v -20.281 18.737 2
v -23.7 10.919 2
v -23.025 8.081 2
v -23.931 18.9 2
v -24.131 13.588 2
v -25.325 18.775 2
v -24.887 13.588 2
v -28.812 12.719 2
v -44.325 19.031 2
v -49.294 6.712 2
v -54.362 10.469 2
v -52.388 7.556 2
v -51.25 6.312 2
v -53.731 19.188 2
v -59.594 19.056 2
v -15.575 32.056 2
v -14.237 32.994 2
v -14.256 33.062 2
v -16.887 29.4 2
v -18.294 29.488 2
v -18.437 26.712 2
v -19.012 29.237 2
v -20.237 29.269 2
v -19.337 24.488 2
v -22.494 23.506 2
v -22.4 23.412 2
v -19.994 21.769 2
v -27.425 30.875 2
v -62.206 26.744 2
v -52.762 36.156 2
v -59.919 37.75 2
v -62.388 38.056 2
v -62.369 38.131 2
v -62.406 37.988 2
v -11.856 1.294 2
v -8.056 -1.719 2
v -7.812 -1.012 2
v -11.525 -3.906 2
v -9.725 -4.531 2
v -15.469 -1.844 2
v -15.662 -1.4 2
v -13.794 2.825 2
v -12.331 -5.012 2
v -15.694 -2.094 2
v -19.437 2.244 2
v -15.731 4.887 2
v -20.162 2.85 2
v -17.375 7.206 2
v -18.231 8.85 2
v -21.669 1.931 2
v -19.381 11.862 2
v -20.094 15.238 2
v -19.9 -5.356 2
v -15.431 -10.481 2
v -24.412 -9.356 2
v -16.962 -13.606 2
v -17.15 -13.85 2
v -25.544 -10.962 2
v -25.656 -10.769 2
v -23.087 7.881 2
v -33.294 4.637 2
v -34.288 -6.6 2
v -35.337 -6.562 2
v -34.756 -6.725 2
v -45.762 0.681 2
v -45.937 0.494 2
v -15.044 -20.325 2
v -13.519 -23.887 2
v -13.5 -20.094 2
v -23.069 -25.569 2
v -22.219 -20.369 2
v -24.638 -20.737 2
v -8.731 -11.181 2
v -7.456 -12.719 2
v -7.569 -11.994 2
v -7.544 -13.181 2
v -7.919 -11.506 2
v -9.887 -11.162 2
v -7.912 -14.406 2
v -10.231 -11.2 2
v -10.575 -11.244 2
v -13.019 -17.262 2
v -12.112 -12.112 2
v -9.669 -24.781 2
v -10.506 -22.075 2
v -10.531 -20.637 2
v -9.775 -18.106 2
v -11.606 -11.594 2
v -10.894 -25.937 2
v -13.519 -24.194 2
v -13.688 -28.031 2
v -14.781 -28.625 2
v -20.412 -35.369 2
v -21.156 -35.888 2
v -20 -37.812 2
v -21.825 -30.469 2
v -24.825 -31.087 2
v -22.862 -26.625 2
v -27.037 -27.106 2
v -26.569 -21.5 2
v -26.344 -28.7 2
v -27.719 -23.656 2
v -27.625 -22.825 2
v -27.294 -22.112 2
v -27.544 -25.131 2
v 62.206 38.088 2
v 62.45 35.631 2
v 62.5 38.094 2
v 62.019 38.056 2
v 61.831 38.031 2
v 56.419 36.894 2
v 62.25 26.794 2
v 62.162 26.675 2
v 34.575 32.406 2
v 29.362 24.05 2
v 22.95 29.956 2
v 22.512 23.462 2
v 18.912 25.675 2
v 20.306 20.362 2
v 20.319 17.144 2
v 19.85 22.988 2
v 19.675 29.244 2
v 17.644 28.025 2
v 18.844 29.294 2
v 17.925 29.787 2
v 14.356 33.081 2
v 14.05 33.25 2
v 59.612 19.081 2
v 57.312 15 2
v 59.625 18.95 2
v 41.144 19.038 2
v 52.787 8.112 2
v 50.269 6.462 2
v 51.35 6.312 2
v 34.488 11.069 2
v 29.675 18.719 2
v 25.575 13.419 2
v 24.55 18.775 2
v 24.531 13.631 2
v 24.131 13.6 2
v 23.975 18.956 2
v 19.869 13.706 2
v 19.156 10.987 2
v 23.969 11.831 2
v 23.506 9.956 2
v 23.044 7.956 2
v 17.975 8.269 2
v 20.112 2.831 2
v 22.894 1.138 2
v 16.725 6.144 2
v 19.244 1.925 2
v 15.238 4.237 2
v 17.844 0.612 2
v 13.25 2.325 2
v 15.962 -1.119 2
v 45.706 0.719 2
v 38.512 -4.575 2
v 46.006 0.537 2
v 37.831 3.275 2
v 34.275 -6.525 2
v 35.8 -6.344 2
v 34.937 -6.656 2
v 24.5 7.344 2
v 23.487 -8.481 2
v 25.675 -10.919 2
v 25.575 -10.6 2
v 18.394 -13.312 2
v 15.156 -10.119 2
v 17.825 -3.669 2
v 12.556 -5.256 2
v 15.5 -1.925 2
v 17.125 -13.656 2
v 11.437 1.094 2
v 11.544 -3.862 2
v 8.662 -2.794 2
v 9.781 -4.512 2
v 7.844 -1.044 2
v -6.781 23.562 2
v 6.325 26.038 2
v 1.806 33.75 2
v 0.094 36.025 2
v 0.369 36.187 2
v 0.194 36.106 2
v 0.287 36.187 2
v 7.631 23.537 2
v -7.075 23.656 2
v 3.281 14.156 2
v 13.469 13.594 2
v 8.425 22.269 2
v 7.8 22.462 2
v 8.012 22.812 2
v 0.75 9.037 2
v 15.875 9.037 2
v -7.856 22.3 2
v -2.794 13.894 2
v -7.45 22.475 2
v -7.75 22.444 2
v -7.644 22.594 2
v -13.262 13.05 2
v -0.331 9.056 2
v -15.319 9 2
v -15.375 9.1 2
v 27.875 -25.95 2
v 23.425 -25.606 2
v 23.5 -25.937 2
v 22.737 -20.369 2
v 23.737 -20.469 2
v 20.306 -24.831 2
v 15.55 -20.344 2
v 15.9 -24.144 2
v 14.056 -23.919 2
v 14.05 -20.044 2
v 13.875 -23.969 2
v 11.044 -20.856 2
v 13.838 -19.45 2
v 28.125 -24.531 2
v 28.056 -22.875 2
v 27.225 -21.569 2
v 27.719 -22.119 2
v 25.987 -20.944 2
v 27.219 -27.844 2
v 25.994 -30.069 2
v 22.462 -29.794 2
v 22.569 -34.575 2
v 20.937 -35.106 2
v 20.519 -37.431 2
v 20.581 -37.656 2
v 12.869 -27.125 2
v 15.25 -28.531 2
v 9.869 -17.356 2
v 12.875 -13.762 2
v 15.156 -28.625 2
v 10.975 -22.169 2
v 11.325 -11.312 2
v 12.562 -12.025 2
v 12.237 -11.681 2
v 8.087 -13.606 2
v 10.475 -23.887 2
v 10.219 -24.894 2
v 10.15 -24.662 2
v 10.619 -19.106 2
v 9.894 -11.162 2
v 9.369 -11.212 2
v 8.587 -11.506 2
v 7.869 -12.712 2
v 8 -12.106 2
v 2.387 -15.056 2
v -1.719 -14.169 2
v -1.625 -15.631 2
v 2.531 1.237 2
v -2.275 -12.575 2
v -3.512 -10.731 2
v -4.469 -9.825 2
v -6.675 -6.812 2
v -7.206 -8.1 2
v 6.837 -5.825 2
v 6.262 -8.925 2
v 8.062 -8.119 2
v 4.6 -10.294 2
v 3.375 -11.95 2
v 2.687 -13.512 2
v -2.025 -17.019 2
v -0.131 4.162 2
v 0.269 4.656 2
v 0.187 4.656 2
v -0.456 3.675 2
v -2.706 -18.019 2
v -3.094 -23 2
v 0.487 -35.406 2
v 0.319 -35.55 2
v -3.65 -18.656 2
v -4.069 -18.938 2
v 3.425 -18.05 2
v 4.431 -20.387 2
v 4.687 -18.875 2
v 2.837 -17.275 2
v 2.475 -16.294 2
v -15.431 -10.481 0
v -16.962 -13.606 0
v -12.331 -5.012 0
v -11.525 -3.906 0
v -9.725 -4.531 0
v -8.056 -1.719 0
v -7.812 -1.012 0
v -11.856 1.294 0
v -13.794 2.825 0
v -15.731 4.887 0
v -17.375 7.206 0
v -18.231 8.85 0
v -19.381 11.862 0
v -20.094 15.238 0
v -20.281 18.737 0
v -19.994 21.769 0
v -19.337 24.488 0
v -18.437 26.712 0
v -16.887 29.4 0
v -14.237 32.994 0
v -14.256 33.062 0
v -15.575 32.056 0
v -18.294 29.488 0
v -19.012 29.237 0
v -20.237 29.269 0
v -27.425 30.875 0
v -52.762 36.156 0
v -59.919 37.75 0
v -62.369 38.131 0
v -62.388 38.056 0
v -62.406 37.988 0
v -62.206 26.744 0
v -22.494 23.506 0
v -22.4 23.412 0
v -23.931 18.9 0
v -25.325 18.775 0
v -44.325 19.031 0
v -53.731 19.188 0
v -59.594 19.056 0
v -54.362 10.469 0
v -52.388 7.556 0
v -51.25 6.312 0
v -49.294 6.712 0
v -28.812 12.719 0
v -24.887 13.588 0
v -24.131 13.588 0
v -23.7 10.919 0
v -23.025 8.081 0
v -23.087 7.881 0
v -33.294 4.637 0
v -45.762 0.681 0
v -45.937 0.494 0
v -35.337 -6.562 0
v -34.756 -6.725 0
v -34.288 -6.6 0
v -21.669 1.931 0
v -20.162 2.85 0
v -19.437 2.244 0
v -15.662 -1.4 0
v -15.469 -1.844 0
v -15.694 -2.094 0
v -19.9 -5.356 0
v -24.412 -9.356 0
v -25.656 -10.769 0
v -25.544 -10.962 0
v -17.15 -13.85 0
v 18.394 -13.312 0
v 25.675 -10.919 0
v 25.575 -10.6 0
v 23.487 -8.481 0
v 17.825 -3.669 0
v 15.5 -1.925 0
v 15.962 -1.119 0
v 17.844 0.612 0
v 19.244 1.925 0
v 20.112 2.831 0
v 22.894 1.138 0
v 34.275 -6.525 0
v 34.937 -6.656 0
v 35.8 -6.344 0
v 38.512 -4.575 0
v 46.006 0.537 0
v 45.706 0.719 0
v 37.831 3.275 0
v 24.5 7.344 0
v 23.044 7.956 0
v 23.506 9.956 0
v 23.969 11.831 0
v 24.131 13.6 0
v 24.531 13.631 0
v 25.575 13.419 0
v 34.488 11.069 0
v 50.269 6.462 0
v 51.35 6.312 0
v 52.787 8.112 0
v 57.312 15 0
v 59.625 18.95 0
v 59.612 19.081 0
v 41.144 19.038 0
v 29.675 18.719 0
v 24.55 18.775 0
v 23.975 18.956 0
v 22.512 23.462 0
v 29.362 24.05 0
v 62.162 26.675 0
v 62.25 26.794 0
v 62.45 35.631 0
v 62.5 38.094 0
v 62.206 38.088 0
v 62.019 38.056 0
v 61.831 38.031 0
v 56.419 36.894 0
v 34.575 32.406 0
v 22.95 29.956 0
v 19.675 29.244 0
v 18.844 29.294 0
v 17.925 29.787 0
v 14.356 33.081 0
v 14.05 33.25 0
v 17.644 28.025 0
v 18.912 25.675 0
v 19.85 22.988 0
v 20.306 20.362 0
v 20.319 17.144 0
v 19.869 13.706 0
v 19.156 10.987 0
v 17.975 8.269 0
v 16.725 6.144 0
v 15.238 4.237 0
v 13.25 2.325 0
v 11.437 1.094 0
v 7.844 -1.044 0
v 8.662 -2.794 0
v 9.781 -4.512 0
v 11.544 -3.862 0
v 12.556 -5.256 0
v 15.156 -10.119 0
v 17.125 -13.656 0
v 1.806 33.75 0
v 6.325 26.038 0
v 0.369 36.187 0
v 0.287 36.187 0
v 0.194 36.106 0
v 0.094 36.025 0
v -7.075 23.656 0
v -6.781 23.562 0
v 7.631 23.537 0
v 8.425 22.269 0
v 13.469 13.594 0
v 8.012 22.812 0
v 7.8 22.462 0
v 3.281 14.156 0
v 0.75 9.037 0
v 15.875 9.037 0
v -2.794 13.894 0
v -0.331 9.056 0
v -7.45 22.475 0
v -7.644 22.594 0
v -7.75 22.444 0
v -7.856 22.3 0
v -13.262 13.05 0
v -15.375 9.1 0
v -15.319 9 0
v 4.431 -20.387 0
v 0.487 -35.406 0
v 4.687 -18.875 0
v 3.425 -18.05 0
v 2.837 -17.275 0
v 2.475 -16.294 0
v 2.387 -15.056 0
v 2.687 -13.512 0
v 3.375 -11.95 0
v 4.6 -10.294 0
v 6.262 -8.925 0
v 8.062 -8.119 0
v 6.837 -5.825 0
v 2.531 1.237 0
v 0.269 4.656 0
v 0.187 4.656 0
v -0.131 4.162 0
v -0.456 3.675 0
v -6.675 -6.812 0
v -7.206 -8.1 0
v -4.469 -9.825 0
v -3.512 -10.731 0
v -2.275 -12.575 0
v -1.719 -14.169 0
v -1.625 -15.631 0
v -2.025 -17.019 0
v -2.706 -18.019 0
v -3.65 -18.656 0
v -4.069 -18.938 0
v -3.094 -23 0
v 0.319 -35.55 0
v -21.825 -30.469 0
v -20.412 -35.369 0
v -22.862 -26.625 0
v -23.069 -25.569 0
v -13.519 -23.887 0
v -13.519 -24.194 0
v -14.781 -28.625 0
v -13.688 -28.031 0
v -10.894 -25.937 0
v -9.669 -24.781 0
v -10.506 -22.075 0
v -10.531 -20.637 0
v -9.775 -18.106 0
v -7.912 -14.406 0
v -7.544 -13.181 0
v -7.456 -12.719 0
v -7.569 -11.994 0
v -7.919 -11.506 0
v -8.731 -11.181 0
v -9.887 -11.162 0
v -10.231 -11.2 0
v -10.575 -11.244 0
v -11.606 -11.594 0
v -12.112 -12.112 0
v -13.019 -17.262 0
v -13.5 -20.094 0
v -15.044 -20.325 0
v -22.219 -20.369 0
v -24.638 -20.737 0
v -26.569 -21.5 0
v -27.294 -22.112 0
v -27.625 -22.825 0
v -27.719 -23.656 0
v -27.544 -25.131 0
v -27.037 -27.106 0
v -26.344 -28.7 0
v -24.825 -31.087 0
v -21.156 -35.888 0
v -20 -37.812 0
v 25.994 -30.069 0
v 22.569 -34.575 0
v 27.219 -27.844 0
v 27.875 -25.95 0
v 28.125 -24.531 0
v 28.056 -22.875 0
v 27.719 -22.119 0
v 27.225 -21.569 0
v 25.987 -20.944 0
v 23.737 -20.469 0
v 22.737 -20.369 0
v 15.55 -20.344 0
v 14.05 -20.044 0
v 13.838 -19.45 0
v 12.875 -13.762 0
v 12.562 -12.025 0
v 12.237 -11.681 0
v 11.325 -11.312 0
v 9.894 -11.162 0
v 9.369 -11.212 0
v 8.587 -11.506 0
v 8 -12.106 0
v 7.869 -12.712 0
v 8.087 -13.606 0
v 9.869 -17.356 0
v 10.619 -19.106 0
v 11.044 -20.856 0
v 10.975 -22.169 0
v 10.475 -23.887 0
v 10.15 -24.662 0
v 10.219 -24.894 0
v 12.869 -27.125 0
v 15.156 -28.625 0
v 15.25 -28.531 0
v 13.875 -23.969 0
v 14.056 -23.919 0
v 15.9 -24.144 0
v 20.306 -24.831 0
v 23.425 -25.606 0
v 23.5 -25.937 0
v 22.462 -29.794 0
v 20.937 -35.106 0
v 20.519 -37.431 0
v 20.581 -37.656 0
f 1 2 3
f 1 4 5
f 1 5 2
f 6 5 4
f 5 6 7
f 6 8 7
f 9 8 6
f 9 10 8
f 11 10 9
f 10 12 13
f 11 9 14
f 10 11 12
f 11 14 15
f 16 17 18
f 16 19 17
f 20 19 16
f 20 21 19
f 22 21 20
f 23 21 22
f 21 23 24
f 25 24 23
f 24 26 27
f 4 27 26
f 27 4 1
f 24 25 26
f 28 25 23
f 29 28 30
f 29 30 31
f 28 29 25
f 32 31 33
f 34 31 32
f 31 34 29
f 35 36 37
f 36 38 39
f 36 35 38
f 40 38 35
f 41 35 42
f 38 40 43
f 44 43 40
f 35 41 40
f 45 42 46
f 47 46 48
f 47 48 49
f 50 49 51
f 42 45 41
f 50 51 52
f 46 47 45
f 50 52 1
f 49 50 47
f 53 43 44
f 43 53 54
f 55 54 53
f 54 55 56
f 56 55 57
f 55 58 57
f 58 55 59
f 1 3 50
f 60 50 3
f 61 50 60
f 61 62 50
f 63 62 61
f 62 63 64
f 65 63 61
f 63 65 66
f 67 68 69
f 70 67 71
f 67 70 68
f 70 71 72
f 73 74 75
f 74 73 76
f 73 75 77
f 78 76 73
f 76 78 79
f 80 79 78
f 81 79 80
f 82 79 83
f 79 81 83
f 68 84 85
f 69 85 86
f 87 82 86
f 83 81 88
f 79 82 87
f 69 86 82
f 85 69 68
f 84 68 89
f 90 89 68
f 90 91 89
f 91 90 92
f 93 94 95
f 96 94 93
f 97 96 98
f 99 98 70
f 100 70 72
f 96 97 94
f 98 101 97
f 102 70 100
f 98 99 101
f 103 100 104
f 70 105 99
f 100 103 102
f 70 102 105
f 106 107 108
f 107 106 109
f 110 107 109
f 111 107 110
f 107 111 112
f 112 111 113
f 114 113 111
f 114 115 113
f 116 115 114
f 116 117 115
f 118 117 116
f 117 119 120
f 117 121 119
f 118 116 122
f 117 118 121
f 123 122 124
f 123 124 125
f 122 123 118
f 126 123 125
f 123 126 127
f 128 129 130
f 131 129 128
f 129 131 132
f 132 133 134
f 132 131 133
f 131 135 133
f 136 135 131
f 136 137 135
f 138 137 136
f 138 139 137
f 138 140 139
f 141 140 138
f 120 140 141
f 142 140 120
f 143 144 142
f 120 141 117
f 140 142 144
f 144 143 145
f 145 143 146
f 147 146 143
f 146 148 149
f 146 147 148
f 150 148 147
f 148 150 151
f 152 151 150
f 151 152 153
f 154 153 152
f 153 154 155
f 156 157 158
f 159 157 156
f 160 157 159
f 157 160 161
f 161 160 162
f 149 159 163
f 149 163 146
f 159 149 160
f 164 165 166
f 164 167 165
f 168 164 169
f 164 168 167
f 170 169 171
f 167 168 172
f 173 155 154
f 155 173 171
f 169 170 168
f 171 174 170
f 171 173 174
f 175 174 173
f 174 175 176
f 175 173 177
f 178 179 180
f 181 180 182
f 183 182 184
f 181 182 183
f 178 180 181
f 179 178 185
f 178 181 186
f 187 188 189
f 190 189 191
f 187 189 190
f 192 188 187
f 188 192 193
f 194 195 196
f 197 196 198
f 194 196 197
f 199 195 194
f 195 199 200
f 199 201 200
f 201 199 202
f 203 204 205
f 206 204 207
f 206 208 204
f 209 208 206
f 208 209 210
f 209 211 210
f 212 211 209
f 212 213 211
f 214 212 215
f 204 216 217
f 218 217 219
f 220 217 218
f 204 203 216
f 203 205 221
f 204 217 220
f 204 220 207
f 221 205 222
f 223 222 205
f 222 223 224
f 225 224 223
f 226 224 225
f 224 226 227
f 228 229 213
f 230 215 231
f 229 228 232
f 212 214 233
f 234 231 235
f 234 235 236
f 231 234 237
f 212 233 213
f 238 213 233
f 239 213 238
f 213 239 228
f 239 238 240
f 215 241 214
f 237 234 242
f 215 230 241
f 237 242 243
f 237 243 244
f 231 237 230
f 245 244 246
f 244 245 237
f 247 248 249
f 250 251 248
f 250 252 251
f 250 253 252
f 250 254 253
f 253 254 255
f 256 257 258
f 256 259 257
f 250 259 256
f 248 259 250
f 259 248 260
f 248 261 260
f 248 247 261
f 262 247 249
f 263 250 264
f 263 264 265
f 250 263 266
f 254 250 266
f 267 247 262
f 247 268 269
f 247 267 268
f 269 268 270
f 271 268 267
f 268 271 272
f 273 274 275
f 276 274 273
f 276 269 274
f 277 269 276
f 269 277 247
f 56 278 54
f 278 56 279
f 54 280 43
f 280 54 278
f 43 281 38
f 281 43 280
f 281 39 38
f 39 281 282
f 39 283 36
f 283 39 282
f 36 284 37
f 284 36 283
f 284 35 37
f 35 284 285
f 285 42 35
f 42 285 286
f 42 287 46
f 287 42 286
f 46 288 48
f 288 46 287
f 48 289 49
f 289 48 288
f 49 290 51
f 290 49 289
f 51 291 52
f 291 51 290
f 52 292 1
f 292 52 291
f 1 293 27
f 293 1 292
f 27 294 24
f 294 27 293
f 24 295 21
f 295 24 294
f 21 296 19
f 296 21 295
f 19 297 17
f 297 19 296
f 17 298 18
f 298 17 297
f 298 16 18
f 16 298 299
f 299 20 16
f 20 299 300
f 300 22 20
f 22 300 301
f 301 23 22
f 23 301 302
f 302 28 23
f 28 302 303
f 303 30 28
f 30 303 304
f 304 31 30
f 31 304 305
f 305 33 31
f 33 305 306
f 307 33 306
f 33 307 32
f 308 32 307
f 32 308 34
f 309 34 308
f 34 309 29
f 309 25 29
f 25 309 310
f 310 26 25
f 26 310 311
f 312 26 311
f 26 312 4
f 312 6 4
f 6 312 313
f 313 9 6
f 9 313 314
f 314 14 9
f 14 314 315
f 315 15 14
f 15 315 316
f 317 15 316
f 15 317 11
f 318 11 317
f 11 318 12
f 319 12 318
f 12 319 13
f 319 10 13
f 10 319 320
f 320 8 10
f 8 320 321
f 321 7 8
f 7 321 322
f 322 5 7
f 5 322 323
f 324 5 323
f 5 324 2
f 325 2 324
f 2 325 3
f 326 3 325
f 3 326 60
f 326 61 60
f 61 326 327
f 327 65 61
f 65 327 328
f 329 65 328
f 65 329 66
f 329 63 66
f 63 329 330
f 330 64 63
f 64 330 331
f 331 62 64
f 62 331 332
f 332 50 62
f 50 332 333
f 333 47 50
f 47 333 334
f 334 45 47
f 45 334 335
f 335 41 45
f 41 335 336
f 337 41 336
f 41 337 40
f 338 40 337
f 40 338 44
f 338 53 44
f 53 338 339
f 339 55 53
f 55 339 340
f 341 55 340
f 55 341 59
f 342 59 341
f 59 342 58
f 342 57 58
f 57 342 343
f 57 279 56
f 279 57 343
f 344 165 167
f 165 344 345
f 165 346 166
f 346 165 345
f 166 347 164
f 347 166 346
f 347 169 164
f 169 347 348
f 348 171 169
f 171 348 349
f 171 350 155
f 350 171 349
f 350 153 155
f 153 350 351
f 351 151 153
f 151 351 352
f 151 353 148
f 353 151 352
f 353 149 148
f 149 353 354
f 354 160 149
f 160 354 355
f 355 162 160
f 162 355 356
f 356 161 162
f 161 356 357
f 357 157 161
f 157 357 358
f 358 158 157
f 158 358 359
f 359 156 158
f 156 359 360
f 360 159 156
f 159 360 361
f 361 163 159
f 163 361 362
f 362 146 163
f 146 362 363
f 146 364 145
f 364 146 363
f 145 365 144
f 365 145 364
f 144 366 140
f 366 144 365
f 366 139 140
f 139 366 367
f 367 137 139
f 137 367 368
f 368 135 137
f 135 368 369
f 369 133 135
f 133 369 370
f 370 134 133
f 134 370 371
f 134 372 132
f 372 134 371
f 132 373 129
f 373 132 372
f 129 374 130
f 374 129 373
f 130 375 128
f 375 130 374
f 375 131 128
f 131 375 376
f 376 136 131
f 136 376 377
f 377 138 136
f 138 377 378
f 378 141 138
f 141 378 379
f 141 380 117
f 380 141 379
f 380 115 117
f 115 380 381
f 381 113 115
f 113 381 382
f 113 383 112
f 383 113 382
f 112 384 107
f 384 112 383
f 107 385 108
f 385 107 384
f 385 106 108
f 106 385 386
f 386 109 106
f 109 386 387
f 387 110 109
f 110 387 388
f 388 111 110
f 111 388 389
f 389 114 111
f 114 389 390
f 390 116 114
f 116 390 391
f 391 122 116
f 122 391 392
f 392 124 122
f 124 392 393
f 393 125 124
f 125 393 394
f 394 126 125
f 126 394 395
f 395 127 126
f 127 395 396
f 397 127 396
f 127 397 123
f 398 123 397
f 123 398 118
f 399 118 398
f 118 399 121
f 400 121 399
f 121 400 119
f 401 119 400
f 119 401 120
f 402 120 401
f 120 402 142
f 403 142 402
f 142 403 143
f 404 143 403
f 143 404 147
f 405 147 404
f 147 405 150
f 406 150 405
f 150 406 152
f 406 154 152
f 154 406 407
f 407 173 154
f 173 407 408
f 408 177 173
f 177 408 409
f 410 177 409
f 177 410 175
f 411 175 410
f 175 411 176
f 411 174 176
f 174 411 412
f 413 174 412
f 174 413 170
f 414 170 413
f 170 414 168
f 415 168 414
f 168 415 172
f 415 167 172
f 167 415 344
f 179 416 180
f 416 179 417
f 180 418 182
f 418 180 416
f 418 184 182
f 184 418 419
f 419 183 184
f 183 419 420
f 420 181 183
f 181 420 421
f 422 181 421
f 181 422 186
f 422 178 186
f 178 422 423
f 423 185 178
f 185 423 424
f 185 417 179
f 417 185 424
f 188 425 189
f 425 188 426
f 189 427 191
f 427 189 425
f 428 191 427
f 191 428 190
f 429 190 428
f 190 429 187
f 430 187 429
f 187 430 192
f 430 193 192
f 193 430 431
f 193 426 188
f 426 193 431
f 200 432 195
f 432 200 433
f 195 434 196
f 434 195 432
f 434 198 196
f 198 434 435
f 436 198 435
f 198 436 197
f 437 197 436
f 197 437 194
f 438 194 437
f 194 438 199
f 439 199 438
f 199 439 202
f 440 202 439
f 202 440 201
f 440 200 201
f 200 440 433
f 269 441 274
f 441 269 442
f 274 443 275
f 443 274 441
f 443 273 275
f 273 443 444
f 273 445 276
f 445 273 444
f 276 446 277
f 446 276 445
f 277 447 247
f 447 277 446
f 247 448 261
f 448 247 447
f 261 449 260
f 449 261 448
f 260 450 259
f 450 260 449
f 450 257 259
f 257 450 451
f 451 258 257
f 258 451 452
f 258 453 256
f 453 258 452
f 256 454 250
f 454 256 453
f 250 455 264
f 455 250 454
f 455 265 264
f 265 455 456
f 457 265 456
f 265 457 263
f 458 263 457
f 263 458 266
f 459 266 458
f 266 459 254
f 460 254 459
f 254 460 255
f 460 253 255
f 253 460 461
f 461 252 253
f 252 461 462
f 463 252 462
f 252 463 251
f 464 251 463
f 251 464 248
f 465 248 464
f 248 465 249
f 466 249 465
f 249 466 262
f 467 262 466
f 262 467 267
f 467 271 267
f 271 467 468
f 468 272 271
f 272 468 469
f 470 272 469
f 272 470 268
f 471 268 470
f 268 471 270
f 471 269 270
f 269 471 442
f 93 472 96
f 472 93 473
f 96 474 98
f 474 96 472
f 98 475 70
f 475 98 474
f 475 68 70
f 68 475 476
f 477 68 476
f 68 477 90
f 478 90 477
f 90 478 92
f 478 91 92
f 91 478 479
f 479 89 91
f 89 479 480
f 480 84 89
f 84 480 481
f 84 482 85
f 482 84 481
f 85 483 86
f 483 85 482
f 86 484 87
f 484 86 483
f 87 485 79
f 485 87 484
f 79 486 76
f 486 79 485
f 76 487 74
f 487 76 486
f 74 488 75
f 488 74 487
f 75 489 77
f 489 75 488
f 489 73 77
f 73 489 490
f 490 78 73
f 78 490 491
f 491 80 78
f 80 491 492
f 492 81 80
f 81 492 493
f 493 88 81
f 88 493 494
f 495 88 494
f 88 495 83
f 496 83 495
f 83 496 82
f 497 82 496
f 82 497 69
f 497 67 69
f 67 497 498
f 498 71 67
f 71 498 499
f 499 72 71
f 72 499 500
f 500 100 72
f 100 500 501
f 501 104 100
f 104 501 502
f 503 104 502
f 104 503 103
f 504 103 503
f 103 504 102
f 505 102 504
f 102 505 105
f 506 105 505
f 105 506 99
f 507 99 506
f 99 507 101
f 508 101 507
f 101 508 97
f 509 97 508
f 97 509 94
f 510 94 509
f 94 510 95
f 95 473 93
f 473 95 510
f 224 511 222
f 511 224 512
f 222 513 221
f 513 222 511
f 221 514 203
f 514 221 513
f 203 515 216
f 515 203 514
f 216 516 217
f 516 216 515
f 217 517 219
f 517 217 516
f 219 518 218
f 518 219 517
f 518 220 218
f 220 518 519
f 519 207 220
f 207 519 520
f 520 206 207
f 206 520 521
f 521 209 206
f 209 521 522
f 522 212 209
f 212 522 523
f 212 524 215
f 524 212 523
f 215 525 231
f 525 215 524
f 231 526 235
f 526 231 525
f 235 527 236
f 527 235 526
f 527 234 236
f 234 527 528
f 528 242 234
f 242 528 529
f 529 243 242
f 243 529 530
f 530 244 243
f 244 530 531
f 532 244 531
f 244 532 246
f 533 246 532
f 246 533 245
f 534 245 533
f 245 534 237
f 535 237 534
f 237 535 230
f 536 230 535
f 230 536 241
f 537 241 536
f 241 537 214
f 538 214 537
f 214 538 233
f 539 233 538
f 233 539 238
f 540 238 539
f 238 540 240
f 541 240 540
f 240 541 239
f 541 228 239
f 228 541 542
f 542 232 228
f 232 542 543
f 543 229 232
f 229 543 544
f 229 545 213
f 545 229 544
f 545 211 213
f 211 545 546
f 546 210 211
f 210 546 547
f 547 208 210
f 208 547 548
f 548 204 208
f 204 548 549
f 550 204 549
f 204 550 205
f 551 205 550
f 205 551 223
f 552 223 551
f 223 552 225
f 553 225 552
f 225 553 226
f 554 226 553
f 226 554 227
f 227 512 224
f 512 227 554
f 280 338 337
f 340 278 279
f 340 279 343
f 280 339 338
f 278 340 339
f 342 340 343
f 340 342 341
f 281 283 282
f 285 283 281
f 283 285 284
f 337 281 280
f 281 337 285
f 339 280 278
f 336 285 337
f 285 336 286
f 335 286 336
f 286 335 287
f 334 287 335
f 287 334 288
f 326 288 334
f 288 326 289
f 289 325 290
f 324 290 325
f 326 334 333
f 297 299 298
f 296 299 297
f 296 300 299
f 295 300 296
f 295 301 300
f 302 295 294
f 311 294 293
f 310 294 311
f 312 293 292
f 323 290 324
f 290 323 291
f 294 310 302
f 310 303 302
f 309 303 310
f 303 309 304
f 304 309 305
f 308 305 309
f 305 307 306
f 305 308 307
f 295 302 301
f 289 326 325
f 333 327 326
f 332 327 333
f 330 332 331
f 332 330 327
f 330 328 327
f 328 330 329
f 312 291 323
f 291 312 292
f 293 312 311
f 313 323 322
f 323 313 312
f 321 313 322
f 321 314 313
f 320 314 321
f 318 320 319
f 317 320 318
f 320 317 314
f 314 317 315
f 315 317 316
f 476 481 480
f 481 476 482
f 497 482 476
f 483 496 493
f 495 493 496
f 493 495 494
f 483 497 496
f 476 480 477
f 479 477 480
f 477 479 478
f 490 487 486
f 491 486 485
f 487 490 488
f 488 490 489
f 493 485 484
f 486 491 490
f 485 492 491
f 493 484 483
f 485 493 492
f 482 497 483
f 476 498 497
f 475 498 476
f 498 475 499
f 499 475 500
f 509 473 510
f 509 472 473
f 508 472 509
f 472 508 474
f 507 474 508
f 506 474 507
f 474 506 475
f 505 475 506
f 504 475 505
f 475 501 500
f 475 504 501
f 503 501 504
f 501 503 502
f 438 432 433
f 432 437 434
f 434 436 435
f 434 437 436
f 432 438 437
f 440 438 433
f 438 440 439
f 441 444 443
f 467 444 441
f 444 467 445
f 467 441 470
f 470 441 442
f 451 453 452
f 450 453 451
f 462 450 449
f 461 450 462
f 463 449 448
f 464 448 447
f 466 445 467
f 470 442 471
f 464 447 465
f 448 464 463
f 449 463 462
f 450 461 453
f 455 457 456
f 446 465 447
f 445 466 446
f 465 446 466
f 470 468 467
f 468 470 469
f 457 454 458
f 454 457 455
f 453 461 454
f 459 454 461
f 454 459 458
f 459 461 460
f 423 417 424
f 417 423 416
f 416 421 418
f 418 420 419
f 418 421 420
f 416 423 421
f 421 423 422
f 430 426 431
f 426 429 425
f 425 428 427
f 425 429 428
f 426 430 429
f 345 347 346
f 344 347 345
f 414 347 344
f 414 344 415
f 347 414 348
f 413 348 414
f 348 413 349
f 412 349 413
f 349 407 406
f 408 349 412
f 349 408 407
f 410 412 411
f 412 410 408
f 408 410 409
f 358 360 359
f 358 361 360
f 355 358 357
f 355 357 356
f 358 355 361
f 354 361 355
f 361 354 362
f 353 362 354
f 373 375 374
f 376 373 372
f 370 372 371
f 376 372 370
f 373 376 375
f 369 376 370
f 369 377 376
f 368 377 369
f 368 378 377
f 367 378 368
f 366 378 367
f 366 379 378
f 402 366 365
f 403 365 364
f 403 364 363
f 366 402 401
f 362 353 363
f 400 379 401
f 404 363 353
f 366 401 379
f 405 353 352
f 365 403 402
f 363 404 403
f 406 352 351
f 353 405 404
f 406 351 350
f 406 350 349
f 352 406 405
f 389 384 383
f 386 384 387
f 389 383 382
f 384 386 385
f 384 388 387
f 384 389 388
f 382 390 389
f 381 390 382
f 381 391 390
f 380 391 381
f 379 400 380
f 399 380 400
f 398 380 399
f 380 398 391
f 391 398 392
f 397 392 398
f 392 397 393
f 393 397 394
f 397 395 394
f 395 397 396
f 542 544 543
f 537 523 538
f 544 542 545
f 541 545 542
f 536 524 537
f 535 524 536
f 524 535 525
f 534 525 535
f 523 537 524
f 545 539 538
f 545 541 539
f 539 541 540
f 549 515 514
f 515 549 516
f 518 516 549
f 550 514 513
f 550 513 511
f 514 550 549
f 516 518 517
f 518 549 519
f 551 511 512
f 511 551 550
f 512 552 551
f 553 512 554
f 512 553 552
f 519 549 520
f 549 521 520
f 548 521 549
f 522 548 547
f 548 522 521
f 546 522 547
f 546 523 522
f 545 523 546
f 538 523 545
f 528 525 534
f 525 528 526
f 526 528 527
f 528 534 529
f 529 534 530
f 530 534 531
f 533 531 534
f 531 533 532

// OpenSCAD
module e0ab2d44b9b2497b7de0b8276d8cbcb8_1()
{
 /* Generated by trace2scad version 20150415
    http://aggregate.org/MAKE/TRACE2SCAD/
    Optimized model has 279/3846 original points
 */
 color([0.48, 0.48, 0.48])
 assign(minx=0) /* polygon minx=15 */
 assign(miny=0) /* polygon miny=75 */
 assign(maxx=20000) /* polygon maxx=20000 */
 assign(maxy=12250) /* polygon maxy=12226 */
 assign(dx=maxx-minx)
 assign(dy=maxy-miny)
 assign(maxd=((dx>dy)?dx:dy))
 scale([1/maxd, 1/maxd, 1])
 translate([-minx-dx/2, -miny-dy/2, 0])
 linear_extrude(height=1, convexity=279)
 union() {
  union() {
   polygon([[18,12214],[15,12203],[47,10404],[6401,9886],[6416,9871],[6171,9149],[5948,9129],[2908,9170],[1403,9195],[465,9174],[1302,7800],[1618,7334],[1800,7135],[2113,7199],[5390,8160],[6018,8299],[6139,8299],[6208,7872],[6316,7418],[6306,7386],[4673,6867],[2678,6234],[2650,6204],[4346,5075],[4439,5049],[4514,5069],[6533,6434],[6774,6581],[6890,6484],[7494,5901],[7525,5830],[7489,5790],[6816,5268],[6094,4628],[5895,4402],[5913,4371],[7256,3909],[7286,3948],[7531,4448],[8027,5323],[8156,5500],[8444,5400],[8711,5850],[8750,5963],[8103,6332],[7793,6577],[7483,6907],[7220,7278],[7083,7541],[6899,8023],[6785,8563],[6755,9123],[6801,9608],[6906,10043],[7050,10399],[7298,10829],[7722,11404],[7719,11415],[7508,11254],[7073,10843],[6958,10803],[6762,10808],[5612,11065],[1558,11910],[413,12165],[21,12226]], convexity=24);
   polygon([[19923,12214],[19893,12210],[19027,12028],[15532,11310],[13672,10918],[13148,10804],[13015,10812],[12868,10891],[12297,11418],[12248,11445],[12823,10609],[13026,10233],[13176,9803],[13249,9383],[13251,8868],[13179,8318],[13065,7883],[12876,7448],[12676,7108],[12438,6803],[12120,6497],[11830,6300],[11255,5958],[11386,5678],[11565,5403],[11847,5507],[12009,5284],[12425,4506],[12740,3940],[12943,3995],[14108,4378],[14092,4429],[13758,4768],[12852,5538],[12480,5817],[12554,5946],[12855,6223],[13079,6433],[13218,6578],[13663,6307],[15484,5081],[15590,5060],[15728,5110],[16162,5393],[17361,6211],[17313,6240],[16053,6649],[13920,7300],[13687,7398],[13761,7718],[13835,8018],[13861,8301],[13925,8306],[14092,8272],[15518,7896],[18043,7159],[18216,7135],[18446,7423],[19170,8525],[19540,9157],[19538,9178],[16583,9171],[14748,9120],[13928,9129],[13836,9158],[13602,9879],[14698,9973],[19946,10393],[19960,10412],[19992,11826],[20000,12220],[19953,12219]], convexity=23);
   polygon([[10031,11902],[10015,11889],[8868,9910],[8915,9895],[11221,9891],[11012,10291],[10289,11525],[10059,11915],[10046,11915]], convexity=5);
   polygon([[11265,9747],[11248,9719],[10525,8390],[10120,7571],[12540,7571],[12155,8300],[11348,9688],[11282,9775]], convexity=5);
   polygon([[8760,9716],[8743,9693],[7878,8213],[7540,7581],[7549,7565],[9947,7574],[9553,8348],[8808,9721],[8777,9740]], convexity=6);
   polygon([[9979,6791],[9927,6713],[8932,5035],[8847,4829],[9285,4553],[9438,4408],[9636,4113],[9725,3858],[9740,3624],[9676,3402],[9567,3242],[9416,3140],[9349,3095],[9505,2445],[10051,437],[10078,460],[10709,2863],[10750,3105],[10548,3237],[10454,3361],[10396,3518],[10382,3716],[10430,3963],[10540,4213],[10736,4478],[11002,4697],[11290,4826],[11094,5193],[10405,6323],[10043,6870],[10030,6870]], convexity=10);
   polygon([[8363,4333],[8308,4326],[8143,4270],[8062,4187],[7917,3363],[7840,2910],[7593,2873],[6445,2866],[6058,2807],[5749,2685],[5633,2587],[5580,2473],[5565,2340],[5593,2104],[5674,1788],[5785,1533],[6028,1151],[6615,383],[6800,75],[6734,466],[6508,1250],[6342,1865],[6309,2034],[7837,2303],[7837,2254],[7635,1545],[7810,1640],[8257,1975],[8453,2160],[8319,2593],[8315,2823],[8436,3228],[8734,3820],[8793,4016],[8807,4090],[8789,4206],[8733,4284],[8603,4336],[8418,4339]], convexity=12);
   polygon([[11541,4335],[11499,4331],[11374,4284],[11280,4188],[11259,4091],[11294,3948],[11579,3348],[11699,3068],[11767,2788],[11756,2578],[11676,2303],[11624,2179],[11635,2142],[12059,1785],[12425,1545],[12440,1560],[12220,2290],[12249,2298],[12544,2262],[13249,2152],[13748,2028],[13760,1975],[13594,1358],[13350,508],[13283,136],[13293,100],[13611,593],[14159,1314],[14355,1670],[14460,1973],[14500,2200],[14489,2465],[14435,2586],[14356,2674],[14158,2774],[13798,2850],[13638,2866],[12488,2870],[12248,2918],[12214,3013],[12060,3923],[12010,4201],[11958,4256],[11812,4315],[11583,4339]], convexity=14);
  }
 }
}

module e0ab2d44b9b2497b7de0b8276d8cbcb8()
{
 /* all layers combined, scaled to within a 1mm cube */
 scale([1, 1, 1/1])
 difference() {
  union() {
   scale([1,1,2]) translate([0,0,-0.5]) e0ab2d44b9b2497b7de0b8276d8cbcb8_1();
  }
  translate([0,0,-2]) cube([2,2,4],center=true);
 }
}

scale([125, 125, 2]) {
	e0ab2d44b9b2497b7de0b8276d8cbcb8();
}
